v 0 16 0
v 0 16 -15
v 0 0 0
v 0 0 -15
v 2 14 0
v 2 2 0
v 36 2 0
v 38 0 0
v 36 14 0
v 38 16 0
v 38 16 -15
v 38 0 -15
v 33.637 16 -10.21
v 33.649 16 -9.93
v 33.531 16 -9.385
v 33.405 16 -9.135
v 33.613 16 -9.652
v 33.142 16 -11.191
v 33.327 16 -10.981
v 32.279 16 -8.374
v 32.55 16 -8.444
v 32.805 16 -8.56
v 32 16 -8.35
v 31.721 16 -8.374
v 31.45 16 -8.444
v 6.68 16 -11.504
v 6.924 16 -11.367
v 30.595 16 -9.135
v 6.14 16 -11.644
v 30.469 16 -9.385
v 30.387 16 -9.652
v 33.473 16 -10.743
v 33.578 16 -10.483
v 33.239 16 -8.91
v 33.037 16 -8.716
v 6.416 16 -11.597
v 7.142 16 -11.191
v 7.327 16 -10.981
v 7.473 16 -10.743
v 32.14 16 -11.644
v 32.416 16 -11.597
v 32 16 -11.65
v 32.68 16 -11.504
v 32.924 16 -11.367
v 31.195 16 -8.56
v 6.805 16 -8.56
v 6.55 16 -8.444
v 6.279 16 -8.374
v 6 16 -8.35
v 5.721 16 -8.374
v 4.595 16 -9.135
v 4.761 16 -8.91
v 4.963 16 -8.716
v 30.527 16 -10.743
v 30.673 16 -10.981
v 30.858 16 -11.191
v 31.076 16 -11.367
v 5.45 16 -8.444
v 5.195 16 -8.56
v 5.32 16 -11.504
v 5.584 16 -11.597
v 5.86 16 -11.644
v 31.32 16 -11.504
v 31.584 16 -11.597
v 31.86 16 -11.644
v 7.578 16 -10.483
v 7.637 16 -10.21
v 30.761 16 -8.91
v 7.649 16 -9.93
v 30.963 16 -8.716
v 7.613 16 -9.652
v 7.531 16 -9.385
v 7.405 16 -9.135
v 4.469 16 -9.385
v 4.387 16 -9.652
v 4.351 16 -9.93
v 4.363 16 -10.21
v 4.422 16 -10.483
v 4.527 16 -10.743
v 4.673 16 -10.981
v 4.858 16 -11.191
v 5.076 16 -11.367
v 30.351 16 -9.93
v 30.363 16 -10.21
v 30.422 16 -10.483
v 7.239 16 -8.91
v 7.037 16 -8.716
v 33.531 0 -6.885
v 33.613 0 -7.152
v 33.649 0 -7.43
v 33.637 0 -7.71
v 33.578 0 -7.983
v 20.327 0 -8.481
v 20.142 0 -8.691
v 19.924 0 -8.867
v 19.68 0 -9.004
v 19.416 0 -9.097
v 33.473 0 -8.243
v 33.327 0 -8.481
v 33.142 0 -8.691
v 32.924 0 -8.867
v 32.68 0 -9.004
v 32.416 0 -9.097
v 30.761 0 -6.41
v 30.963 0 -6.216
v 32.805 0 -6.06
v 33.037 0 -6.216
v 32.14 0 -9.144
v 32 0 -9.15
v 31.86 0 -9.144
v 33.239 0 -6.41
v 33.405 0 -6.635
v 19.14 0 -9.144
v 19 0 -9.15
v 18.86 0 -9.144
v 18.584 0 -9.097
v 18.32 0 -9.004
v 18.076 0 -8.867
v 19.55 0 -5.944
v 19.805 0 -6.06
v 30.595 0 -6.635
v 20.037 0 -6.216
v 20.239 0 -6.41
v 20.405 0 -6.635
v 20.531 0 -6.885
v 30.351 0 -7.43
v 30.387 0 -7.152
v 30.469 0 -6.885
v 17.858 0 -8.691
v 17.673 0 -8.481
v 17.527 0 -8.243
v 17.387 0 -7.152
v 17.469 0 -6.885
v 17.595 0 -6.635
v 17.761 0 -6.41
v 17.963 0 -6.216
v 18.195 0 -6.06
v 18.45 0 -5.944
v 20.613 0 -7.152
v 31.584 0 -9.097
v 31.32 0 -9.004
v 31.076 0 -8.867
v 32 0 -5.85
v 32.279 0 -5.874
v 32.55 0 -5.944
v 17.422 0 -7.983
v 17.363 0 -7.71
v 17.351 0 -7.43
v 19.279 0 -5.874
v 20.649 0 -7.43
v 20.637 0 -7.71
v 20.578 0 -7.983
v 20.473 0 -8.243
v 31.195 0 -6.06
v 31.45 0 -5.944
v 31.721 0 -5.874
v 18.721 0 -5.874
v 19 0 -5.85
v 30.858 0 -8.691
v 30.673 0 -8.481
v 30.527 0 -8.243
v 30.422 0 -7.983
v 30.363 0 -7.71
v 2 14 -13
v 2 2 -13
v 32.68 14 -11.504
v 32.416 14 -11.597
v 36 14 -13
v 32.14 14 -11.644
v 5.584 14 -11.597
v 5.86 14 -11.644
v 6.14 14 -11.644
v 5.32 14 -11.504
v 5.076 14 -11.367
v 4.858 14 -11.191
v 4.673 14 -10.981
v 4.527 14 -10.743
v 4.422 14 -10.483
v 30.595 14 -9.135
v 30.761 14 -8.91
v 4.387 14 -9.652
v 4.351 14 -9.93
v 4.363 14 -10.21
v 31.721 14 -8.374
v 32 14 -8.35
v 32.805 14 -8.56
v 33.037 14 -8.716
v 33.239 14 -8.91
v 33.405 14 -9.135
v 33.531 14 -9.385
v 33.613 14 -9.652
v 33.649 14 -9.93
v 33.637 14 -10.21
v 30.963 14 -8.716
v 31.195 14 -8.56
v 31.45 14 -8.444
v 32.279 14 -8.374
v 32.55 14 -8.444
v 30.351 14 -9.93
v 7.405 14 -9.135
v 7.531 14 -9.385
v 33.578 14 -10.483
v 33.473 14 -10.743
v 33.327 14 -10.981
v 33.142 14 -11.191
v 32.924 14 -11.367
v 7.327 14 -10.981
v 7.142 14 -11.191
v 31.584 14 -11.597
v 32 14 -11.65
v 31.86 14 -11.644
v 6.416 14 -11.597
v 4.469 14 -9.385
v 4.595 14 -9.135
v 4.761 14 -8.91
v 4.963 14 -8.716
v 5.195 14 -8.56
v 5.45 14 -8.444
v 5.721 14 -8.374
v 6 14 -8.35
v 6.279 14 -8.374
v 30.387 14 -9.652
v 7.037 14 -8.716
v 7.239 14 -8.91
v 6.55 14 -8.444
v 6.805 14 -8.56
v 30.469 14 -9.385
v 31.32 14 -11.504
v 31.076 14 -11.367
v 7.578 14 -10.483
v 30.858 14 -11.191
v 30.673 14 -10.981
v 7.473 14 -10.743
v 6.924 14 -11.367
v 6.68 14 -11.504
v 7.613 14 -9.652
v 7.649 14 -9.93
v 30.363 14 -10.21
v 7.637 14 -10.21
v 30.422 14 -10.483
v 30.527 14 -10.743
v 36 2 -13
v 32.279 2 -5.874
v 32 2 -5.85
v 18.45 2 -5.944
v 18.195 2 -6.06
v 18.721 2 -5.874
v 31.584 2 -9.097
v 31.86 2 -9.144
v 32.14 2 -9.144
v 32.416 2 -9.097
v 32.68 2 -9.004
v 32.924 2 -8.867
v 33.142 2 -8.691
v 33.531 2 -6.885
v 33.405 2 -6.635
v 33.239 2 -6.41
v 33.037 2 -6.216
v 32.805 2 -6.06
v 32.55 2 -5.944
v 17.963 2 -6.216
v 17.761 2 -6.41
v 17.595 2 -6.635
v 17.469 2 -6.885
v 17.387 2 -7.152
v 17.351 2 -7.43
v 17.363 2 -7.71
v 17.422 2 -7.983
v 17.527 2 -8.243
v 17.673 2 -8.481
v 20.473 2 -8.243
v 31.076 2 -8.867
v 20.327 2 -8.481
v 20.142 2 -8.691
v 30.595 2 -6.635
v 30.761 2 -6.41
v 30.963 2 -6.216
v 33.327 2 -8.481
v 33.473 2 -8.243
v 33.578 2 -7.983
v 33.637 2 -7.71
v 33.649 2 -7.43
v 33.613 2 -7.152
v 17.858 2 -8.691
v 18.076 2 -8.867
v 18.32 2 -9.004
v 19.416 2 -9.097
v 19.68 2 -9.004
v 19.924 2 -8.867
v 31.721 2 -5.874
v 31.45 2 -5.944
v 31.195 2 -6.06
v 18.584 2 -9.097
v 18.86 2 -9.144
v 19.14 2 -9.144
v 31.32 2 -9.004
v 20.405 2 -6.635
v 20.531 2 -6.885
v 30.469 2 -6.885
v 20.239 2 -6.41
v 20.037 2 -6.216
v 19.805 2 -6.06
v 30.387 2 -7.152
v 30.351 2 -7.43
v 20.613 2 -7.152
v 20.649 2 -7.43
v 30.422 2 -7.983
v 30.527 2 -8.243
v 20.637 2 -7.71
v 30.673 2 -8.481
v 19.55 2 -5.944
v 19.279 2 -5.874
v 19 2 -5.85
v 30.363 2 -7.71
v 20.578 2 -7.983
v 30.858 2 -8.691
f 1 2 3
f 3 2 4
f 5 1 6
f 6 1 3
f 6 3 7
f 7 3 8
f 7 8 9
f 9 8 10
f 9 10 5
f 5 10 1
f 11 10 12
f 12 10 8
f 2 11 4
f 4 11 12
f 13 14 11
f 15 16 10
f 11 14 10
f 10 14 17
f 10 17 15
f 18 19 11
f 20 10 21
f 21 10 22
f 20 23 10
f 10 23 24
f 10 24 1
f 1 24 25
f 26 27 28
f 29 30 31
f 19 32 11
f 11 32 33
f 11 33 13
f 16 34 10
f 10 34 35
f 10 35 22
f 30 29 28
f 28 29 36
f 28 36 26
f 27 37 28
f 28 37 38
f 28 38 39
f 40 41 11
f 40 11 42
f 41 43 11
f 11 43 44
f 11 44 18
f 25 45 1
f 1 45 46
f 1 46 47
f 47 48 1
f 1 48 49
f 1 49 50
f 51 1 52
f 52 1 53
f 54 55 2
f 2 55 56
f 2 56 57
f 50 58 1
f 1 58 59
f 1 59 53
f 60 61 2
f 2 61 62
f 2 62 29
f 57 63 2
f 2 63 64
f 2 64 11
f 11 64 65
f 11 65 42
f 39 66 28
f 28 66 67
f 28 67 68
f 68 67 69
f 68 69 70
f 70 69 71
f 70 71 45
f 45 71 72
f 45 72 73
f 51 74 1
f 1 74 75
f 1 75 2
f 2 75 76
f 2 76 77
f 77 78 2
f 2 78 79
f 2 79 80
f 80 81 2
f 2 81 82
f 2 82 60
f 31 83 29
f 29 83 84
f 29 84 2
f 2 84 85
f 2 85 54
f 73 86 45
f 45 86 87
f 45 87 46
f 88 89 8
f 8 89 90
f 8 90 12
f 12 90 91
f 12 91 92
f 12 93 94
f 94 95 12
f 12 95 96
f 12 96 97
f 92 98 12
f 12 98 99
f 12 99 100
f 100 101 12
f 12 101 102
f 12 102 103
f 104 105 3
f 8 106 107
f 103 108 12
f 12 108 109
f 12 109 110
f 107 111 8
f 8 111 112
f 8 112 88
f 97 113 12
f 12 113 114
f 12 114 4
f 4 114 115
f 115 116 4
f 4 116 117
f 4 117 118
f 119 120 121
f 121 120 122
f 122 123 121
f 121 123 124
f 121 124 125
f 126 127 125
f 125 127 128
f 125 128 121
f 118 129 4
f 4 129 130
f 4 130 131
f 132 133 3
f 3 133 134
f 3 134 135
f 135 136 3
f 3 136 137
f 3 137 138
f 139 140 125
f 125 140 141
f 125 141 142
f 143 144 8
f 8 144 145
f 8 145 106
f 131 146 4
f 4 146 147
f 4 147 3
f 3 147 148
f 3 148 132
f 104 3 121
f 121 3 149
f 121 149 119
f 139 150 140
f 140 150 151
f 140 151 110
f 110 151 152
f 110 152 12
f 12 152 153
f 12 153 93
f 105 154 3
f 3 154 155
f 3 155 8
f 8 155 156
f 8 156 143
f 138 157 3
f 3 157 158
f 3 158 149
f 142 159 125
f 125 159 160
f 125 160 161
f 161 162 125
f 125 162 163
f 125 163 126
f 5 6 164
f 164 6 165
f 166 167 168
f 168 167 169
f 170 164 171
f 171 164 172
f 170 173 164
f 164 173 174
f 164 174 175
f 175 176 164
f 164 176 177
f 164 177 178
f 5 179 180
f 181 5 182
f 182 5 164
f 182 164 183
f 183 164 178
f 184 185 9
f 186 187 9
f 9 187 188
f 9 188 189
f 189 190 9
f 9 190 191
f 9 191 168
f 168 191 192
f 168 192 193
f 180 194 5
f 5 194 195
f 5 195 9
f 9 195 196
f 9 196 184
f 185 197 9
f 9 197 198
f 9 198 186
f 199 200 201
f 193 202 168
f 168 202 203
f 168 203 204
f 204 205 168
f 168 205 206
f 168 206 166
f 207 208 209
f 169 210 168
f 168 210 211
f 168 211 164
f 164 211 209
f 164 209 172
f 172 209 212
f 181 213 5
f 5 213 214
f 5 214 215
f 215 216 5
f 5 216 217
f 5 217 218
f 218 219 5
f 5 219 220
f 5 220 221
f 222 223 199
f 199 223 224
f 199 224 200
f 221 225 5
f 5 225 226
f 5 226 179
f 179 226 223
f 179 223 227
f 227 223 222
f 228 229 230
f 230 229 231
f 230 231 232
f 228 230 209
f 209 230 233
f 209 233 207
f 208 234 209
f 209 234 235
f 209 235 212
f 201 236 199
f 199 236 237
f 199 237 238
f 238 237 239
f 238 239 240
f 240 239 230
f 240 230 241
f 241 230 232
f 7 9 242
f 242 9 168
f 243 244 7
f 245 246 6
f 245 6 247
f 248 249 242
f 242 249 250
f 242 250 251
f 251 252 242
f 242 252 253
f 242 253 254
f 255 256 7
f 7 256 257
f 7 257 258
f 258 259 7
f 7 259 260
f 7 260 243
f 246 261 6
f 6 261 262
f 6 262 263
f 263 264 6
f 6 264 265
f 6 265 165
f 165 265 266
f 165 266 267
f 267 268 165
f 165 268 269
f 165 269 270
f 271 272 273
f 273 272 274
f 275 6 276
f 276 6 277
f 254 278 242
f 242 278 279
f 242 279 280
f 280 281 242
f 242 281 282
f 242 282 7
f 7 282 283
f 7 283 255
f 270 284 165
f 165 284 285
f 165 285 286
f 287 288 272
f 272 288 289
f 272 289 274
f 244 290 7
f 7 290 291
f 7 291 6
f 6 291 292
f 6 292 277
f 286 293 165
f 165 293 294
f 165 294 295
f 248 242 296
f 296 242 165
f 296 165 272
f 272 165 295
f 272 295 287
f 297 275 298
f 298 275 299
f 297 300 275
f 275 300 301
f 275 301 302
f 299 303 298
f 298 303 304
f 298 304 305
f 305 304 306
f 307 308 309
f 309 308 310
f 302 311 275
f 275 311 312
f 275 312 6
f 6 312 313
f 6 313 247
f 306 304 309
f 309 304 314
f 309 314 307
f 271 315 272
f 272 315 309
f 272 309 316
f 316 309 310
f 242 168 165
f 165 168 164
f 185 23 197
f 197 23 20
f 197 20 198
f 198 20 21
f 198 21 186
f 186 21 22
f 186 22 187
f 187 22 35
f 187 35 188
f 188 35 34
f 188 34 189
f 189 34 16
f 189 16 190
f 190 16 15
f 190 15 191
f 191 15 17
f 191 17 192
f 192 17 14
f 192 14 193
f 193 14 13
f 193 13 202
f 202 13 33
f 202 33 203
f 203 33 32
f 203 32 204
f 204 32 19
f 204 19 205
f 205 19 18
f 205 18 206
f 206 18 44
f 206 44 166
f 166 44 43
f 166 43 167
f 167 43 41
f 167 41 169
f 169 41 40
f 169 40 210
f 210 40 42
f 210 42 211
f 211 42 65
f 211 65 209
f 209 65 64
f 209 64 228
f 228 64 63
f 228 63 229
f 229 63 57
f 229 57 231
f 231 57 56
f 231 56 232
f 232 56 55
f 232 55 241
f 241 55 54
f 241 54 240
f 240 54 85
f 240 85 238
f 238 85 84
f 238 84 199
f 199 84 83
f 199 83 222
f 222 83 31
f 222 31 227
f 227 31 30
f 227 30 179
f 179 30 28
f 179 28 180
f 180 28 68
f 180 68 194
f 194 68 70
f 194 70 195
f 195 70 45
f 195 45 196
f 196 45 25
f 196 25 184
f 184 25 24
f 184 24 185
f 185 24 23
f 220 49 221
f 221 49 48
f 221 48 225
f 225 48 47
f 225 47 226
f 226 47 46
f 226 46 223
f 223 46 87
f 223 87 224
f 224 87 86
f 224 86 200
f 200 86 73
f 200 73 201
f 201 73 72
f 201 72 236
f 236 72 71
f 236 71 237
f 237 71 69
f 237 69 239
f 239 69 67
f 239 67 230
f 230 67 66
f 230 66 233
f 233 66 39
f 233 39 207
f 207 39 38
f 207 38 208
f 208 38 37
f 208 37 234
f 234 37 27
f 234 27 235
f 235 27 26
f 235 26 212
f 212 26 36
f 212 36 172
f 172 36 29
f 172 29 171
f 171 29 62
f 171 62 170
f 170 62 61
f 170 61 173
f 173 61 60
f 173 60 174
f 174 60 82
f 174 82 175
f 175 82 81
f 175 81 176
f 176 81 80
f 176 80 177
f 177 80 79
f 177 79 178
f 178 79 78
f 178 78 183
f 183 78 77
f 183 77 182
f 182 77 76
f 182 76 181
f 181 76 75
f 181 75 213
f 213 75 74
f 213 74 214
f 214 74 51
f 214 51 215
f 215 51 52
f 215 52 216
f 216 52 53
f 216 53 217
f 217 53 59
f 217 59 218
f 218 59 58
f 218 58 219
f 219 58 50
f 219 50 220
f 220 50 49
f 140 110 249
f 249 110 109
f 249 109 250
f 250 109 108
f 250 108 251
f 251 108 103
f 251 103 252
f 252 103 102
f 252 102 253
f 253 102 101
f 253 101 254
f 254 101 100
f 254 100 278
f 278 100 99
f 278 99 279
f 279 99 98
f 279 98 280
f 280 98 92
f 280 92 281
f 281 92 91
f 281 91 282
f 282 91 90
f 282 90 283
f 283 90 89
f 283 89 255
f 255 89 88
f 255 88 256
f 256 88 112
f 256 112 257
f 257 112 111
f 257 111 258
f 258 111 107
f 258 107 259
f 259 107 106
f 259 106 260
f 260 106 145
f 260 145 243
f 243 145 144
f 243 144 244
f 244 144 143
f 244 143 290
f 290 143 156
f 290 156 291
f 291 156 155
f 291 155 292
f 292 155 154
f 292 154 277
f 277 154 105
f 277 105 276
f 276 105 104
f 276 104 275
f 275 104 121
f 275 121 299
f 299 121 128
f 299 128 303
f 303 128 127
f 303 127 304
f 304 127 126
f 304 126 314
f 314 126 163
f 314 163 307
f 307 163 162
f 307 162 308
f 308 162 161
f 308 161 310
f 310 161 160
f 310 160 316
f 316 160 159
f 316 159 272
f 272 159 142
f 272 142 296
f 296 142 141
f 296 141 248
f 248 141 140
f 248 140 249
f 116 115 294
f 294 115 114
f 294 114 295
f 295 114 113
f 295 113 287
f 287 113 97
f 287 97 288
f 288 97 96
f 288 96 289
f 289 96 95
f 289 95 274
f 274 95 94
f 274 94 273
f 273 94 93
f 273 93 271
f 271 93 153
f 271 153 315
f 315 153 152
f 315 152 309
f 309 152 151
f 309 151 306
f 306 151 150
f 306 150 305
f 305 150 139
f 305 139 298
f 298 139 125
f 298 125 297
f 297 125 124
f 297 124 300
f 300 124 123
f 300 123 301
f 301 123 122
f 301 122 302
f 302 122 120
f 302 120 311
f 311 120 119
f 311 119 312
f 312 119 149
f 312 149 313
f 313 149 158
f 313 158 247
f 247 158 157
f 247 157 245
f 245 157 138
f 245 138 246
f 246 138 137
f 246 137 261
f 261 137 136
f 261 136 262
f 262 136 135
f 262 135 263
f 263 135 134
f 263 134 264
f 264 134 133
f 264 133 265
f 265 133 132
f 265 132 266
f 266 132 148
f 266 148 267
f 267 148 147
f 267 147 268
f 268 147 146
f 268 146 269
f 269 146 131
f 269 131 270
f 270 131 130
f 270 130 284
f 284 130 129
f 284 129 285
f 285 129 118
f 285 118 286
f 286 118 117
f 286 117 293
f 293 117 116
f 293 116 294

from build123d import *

# Parameters (mm, degrees)
SKETCH_1_W          = 38
SKETCH_1_H          = 15
EXTRUDE_1_DEPTH     = 16
SKETCH_2_W          = 34
SKETCH_2_H          = 12
CUT_EXTRUDE_1_DEPTH = 13
SKETCH_3_R          = 1.65
CUT_EXTRUDE_2_DEPTH = 2
SKETCH_4_R          = 1.65
CUT_EXTRUDE_3_DEPTH = 10


with BuildPart() as part:
    # 草图1 → 凸台-拉伸1 (new body)
    with BuildSketch(Plane(origin=(0, 0, 0), x_dir=(1, 0, 0), z_dir=(0, 1, 0))):
        with Locations((19, 7.5)):
            Rectangle(SKETCH_1_W, SKETCH_1_H)
    extrude(amount=EXTRUDE_1_DEPTH)

    # 草图2 → 切除-拉伸1 (cut)
    with BuildSketch(Plane.XY):
        with Locations((19, 8)):
            Rectangle(SKETCH_2_W, SKETCH_2_H)
    extrude(amount=-CUT_EXTRUDE_1_DEPTH, mode=Mode.SUBTRACT)

    # 草图3 → 切除-拉伸2 (cut)
    with BuildSketch(Plane(origin=(0, 16, 0), x_dir=(1, 0, 0), z_dir=(0, 1, 0))):
        with Locations(Location((6, 10, 0), (0, 0, 270))):
            Circle(SKETCH_3_R)
        with Locations(Location((32, 10, 0), (0, 0, 90))):
            Circle(SKETCH_3_R)
    extrude(amount=-CUT_EXTRUDE_2_DEPTH, mode=Mode.SUBTRACT)

    # 草图4 → 切除-拉伸3 (cut)
    with BuildSketch(Plane(origin=(0, 2, 0), x_dir=(1, 0, 0), z_dir=(0, 1, 0))):
        with Locations(Location((19, 7.5, 0), (0, 0, 270))):
            Circle(SKETCH_4_R)
        with Locations(Location((32, 7.5, 0), (0, 0, 270))):
            Circle(SKETCH_4_R)
    extrude(amount=-CUT_EXTRUDE_3_DEPTH, mode=Mode.SUBTRACT)


solid = part.part
